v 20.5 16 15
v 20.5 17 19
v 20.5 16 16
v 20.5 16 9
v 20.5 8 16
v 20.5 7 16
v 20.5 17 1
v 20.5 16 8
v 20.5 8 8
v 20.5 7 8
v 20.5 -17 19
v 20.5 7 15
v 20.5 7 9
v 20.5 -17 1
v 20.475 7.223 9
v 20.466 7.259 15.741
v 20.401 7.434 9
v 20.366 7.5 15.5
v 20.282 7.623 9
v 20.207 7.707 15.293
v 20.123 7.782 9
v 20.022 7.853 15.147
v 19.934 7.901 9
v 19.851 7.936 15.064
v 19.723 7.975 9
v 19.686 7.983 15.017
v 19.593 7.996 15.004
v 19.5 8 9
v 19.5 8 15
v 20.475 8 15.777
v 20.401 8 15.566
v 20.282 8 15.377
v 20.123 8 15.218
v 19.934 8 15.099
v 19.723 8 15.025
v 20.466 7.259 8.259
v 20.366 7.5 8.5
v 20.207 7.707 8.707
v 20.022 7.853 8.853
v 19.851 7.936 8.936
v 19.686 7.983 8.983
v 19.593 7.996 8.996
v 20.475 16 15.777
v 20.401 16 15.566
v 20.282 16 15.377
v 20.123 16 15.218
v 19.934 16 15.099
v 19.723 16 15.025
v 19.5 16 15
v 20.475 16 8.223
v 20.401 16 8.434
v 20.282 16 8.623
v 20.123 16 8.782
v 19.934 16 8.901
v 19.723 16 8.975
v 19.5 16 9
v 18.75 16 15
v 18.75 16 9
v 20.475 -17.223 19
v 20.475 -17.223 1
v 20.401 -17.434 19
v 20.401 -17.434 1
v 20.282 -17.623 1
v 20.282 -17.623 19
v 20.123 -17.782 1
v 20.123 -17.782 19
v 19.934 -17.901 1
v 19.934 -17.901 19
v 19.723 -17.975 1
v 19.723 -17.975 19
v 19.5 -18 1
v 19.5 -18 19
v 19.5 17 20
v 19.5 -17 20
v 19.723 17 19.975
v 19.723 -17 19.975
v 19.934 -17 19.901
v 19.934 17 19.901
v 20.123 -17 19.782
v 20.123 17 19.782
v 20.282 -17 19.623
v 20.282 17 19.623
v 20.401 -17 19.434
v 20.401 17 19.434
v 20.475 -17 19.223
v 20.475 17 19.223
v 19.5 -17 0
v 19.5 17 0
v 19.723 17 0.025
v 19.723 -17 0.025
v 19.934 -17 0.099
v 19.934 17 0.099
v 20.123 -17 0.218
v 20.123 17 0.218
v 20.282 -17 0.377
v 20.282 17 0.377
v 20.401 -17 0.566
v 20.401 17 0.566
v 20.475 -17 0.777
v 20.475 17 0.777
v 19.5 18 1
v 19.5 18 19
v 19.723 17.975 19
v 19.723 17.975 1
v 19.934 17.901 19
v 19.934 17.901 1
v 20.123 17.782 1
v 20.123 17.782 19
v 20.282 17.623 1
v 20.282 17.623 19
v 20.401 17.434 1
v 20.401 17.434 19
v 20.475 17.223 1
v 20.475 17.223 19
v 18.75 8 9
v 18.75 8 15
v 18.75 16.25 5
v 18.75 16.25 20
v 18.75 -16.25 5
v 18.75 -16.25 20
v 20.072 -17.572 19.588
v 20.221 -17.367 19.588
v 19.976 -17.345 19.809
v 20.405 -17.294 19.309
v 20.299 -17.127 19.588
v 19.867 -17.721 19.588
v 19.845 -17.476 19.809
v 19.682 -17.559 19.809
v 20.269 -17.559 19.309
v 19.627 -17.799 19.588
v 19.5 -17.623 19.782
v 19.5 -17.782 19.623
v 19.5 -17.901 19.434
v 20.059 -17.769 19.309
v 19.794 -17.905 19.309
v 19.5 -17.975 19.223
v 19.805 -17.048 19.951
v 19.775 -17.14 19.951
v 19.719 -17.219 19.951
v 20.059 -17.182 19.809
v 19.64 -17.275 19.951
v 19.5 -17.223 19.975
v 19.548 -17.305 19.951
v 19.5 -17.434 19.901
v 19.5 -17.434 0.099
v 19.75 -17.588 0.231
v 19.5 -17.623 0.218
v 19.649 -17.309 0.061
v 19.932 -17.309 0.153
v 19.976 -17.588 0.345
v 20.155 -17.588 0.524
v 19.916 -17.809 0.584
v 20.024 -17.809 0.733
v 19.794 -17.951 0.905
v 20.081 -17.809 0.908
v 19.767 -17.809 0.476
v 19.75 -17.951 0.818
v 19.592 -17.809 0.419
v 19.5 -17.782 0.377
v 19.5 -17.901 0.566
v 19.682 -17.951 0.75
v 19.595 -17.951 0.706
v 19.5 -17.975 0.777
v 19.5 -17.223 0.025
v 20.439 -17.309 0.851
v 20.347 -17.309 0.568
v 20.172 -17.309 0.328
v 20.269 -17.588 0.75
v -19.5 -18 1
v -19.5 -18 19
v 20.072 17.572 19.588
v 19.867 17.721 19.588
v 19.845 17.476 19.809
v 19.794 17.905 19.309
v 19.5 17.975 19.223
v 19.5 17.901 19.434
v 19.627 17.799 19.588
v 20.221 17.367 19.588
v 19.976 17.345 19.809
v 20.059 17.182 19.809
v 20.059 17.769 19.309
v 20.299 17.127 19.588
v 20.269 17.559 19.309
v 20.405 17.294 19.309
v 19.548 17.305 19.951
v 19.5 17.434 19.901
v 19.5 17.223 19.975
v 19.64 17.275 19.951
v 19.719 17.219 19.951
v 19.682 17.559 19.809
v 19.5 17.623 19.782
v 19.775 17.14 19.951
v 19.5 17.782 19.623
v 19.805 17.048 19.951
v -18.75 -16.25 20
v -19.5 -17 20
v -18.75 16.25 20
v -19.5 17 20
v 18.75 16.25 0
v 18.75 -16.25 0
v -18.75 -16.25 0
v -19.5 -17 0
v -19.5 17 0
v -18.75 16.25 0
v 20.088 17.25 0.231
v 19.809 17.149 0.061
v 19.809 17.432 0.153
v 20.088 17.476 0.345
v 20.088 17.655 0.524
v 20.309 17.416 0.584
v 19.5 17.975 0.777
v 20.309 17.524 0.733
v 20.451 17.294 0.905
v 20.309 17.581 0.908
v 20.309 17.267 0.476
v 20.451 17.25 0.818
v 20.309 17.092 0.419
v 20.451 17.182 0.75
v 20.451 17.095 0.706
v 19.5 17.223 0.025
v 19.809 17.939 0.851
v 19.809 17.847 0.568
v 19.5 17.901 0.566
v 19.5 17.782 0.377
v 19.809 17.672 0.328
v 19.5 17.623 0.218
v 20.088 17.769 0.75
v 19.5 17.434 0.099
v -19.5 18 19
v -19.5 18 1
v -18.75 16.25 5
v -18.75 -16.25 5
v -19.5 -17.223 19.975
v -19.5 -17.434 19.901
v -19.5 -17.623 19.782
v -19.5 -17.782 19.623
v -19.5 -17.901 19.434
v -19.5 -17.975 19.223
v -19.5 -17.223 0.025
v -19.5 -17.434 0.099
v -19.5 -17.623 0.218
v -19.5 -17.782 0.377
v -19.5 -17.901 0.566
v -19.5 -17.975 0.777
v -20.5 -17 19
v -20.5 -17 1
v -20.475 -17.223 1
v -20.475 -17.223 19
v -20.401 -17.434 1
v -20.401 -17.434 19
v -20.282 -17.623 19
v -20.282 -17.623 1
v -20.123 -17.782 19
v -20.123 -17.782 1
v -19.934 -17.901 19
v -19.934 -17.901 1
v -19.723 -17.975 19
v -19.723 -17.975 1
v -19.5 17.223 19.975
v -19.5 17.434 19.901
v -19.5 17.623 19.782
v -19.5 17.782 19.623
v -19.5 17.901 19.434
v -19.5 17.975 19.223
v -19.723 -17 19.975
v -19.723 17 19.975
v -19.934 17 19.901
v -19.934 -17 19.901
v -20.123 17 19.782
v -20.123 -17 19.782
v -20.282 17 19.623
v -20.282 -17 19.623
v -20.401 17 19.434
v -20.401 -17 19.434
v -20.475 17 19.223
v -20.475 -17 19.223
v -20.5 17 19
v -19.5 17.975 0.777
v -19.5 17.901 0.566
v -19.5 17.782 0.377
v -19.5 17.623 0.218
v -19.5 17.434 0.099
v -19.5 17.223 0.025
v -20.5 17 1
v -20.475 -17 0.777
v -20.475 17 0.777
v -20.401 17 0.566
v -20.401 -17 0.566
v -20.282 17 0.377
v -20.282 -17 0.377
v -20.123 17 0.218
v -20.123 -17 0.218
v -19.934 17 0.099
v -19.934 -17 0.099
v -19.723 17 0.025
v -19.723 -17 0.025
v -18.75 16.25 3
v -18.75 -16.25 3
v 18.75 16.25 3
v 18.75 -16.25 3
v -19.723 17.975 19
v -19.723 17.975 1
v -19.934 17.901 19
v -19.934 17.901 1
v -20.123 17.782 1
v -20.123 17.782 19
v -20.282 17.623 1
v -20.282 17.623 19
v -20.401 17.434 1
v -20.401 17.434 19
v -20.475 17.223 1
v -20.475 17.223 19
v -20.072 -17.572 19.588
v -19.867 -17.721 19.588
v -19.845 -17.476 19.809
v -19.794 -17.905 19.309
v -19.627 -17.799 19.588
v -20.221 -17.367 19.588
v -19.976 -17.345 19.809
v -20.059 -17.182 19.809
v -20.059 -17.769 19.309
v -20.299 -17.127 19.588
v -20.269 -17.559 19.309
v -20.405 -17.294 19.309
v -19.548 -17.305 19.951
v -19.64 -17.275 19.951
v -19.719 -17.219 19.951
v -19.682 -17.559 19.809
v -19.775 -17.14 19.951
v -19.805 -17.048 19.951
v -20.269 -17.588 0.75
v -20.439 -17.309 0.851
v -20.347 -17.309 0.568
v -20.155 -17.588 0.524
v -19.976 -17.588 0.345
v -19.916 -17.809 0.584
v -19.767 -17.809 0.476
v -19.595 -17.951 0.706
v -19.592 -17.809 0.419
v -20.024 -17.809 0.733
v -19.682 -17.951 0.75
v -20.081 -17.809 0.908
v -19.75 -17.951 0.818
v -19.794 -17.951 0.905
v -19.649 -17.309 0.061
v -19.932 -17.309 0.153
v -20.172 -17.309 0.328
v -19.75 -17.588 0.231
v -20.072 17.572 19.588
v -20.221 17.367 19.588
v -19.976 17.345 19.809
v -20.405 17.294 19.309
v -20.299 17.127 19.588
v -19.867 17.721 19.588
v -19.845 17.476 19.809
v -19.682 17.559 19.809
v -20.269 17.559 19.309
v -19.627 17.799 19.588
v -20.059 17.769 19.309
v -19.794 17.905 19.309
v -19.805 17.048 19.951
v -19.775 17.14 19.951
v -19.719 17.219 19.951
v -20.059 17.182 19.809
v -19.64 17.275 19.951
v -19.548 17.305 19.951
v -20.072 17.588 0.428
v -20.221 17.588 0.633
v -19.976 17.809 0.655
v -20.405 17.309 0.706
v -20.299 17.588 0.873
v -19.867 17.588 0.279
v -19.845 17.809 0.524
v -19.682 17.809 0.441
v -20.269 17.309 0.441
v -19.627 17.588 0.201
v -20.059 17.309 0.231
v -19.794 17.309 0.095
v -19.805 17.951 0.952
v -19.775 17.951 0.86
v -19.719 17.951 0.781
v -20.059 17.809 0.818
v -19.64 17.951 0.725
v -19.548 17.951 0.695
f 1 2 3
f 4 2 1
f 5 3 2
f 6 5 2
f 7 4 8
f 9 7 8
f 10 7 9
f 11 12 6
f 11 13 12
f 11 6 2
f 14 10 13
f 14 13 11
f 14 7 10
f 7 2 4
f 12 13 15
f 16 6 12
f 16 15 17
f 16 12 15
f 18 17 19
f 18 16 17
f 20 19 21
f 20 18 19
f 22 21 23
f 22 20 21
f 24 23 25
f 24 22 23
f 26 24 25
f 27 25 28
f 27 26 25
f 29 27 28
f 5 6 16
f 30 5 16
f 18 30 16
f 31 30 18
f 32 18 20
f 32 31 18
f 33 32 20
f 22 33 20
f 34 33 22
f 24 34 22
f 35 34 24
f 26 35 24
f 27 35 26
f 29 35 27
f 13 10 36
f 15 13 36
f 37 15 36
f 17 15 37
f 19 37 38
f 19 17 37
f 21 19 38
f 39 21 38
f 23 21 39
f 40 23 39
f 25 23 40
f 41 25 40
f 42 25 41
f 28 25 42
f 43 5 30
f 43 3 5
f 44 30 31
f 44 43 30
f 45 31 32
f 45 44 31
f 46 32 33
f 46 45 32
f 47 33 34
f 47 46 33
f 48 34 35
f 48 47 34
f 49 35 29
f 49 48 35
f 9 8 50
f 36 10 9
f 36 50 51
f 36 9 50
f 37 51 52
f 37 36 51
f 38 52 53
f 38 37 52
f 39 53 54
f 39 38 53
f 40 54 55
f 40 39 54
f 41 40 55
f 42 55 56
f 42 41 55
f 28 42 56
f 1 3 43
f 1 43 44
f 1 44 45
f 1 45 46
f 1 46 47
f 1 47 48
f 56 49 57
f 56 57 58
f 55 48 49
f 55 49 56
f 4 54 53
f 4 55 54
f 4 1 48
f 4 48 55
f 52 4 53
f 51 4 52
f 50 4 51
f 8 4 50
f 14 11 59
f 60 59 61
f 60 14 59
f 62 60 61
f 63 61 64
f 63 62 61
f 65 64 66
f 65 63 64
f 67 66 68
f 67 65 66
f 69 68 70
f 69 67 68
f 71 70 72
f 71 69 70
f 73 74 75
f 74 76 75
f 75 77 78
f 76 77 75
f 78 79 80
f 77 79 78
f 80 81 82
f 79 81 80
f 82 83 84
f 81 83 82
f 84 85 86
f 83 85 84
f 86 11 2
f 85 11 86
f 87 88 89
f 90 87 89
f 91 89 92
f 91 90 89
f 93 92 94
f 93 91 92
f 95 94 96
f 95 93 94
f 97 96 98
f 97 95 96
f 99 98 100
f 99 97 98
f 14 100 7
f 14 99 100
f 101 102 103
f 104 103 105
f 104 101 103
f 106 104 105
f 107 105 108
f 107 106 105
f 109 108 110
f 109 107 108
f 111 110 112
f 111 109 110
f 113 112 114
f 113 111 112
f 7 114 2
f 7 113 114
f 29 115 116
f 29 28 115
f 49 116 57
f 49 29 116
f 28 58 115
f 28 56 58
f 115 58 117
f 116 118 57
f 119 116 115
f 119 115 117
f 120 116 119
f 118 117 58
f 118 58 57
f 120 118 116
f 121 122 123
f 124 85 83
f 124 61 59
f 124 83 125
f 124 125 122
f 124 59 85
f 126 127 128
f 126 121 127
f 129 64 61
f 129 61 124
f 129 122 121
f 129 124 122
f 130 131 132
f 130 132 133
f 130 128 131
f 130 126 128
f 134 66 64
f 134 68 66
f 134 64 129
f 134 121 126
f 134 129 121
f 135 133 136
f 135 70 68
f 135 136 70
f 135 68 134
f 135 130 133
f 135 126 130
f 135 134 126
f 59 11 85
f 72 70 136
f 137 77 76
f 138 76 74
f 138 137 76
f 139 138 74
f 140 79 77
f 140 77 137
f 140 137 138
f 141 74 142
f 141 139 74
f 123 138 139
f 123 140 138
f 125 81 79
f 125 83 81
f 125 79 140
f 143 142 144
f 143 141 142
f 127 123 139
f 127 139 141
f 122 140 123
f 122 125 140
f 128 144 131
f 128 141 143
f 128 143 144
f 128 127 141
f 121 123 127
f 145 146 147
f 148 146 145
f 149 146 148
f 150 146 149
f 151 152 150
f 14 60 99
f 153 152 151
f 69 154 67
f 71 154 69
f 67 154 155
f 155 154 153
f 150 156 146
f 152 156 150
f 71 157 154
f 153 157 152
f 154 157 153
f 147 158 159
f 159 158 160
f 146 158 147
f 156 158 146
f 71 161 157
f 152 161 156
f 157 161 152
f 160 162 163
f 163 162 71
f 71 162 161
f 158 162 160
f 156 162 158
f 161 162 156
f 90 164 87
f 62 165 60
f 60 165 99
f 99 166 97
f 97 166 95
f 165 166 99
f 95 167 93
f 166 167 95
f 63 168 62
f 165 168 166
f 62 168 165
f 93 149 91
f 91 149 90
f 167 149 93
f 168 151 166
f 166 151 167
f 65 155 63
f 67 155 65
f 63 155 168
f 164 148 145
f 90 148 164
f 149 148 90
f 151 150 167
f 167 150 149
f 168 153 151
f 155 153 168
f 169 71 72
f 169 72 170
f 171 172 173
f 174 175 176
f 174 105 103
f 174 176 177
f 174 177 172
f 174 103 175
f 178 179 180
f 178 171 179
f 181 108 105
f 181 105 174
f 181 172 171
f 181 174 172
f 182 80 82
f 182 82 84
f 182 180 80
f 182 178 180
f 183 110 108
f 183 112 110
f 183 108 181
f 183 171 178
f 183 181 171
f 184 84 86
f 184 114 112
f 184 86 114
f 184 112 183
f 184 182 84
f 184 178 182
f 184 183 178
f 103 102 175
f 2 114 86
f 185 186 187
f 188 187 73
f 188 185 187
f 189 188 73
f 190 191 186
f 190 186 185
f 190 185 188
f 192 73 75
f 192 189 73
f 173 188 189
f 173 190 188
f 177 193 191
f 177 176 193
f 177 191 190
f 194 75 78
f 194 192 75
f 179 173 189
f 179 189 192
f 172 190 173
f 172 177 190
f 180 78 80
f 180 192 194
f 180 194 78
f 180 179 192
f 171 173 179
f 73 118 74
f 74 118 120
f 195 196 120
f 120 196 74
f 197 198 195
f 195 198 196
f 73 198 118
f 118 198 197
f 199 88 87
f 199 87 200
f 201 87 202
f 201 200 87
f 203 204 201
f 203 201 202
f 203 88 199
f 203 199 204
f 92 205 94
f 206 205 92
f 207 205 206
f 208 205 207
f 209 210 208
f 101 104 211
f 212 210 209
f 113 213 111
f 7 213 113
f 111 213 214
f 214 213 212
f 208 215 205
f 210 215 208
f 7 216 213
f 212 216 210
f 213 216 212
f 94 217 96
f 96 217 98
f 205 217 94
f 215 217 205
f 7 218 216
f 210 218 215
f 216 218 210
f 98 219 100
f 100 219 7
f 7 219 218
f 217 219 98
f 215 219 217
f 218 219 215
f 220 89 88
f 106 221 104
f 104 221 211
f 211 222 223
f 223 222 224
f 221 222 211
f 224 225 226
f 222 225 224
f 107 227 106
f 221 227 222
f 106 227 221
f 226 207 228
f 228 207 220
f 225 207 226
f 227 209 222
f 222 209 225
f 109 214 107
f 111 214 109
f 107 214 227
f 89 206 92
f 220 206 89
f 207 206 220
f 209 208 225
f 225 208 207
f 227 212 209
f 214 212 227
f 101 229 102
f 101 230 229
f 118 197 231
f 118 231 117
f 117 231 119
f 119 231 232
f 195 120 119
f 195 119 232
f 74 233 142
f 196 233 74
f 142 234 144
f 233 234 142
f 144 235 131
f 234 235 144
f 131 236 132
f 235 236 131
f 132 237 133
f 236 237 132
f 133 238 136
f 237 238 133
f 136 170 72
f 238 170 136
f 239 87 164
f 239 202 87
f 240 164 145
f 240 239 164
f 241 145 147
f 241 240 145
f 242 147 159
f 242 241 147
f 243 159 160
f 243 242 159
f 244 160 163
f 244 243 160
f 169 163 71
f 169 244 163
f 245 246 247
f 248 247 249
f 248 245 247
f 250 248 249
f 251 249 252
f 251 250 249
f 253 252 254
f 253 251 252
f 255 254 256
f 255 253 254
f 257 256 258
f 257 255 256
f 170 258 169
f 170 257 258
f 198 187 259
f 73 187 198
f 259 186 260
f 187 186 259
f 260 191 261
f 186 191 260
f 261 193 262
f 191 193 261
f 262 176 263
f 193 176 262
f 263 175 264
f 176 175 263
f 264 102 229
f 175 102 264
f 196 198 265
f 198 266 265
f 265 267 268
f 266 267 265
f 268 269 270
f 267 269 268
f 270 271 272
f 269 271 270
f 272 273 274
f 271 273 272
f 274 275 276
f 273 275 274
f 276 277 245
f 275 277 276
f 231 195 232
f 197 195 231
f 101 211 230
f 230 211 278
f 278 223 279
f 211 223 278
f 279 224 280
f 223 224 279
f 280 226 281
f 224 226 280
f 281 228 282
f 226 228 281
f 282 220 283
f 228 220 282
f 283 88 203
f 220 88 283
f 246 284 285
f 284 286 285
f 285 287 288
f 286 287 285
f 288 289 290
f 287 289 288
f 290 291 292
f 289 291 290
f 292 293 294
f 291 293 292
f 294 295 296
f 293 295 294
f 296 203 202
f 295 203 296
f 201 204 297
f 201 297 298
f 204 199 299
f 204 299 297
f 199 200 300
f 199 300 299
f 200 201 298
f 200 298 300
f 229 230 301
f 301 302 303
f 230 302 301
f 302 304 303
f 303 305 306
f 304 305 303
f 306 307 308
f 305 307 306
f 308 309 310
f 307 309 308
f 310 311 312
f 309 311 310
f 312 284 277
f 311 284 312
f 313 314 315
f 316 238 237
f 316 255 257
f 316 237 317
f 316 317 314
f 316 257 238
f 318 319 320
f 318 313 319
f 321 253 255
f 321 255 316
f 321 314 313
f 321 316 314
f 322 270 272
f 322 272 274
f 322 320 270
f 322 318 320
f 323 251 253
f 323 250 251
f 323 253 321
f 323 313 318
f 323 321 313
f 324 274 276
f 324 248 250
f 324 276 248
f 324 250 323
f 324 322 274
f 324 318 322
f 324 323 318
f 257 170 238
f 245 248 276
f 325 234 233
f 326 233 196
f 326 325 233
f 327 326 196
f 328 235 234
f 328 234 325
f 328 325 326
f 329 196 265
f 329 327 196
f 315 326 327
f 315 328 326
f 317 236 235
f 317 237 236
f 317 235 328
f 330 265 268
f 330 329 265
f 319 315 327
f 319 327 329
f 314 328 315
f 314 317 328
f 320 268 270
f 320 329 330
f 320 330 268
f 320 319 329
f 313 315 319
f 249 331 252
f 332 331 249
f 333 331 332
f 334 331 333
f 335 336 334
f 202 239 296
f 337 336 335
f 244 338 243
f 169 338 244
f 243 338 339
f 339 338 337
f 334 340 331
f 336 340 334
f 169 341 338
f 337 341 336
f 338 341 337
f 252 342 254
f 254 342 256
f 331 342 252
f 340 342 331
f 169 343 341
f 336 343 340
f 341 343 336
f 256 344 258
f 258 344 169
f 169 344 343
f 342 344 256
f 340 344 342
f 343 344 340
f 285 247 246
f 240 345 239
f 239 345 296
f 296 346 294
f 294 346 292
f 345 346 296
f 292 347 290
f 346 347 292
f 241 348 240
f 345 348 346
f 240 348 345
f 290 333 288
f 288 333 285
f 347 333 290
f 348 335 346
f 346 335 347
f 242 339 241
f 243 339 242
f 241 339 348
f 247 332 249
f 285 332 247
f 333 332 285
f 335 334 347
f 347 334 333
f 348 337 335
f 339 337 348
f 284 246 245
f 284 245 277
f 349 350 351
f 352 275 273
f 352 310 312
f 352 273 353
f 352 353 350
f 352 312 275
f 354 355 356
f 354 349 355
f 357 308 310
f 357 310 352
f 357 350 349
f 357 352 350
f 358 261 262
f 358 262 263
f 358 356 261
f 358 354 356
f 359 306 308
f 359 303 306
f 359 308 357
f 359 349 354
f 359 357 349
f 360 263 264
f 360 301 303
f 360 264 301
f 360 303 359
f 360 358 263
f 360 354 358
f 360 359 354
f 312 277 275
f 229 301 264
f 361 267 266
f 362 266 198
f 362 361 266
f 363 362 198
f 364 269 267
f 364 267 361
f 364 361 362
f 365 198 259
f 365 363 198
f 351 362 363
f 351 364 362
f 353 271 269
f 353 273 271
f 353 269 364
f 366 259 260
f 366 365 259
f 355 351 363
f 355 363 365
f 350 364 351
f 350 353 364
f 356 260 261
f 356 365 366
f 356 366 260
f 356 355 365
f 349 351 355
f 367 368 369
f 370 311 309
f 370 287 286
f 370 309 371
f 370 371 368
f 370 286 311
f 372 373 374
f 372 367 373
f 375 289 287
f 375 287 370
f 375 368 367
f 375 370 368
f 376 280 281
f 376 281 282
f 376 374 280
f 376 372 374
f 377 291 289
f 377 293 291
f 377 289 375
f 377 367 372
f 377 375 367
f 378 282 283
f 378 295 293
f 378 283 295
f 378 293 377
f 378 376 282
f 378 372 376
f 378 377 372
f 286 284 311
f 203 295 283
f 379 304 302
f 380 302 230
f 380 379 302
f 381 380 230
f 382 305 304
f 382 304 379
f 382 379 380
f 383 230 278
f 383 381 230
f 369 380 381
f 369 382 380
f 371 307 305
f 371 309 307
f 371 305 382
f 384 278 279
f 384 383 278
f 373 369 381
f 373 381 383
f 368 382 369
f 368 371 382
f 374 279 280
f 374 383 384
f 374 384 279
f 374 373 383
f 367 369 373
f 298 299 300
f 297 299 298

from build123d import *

# Parameters (mm, degrees)
SKETCH_W        = 41
SKETCH_H        = 36
PAD_DEPTH       = 20
SKETCH001_W     = 37.5
SKETCH001_H     = 32.5
POCKET_DEPTH    = 15
SKETCH002_W     = 37.5
SKETCH002_H     = 32.5
POCKET001_DEPTH = 3
SKETCH003_W     = 8
SKETCH003_H     = 6
POCKET002_DEPTH = 5
FILLET_R        = 1
FILLET001_R     = 1
FILLET002_R     = 1
FILLET003_R     = 1
FILLET004_R     = 1
FILLET005_R     = 1
FILLET006_R     = 1
FILLET007_R     = 1


with BuildPart() as part:
    # Sketch → Pad (new body)
    with BuildSketch(Plane.XY):
        Rectangle(SKETCH_W, SKETCH_H)
    extrude(amount=PAD_DEPTH)

    # Sketch001 (on Face6 of Pad) → Pocket (cut)
    with BuildSketch(Plane.XY.offset(20)):
        Rectangle(SKETCH001_W, SKETCH001_H)
    extrude(amount=-POCKET_DEPTH, mode=Mode.SUBTRACT)

    # Sketch002 (on Face4 of Pocket) → Pocket001 (cut)
    with BuildSketch(Plane(origin=(0, 0, 0), x_dir=(1, 0, 0), z_dir=(0, 0, -1))):
        Rectangle(SKETCH002_W, SKETCH002_H)
    extrude(amount=-POCKET001_DEPTH, mode=Mode.SUBTRACT)

    # Sketch003 (on Face3 of Pocket001) → Pocket002 (cut)
    with BuildSketch(Plane.YZ.offset(20.5)):
        with Locations((12, 12)):
            Rectangle(SKETCH003_W, SKETCH003_H)
    extrude(amount=-POCKET002_DEPTH, mode=Mode.SUBTRACT)

    # Fillet
    fillet_edges = [part.edges().sort_by_distance(p)[0] for p in [
        (-20.5, 0, 0),
    ]]
    fillet(fillet_edges, radius=FILLET_R)

    # Fillet001
    fillet001_edges = [part.edges().sort_by_distance(p)[0] for p in [
        (0.5, 18, 0),
    ]]
    fillet(fillet001_edges, radius=FILLET001_R)

    # Fillet002
    fillet002_edges = [part.edges().sort_by_distance(p)[0] for p in [
        (20.5, -0.5, 0),
    ]]
    fillet(fillet002_edges, radius=FILLET002_R)

    # Fillet003
    fillet003_edges = [part.edges().sort_by_distance(p)[0] for p in [
        (0, -18, 0),
    ]]
    fillet(fillet003_edges, radius=FILLET003_R)

    # Fillet004
    fillet004_edges = [part.edges().sort_by_distance(p)[0] for p in [
        (-20.5, 0, 20),
    ]]
    fillet(fillet004_edges, radius=FILLET004_R)

    # Fillet005
    fillet005_edges = [part.edges().sort_by_distance(p)[0] for p in [
        (20.5, 12, 9),
    ]]
    fillet(fillet005_edges, radius=FILLET005_R)

    # Fillet006
    fillet006_edges = [part.edges().sort_by_distance(p)[0] for p in [
        (20.5, 8, 12),
    ]]
    fillet(fillet006_edges, radius=FILLET006_R)

    # Fillet007
    fillet007_edges = [part.edges().sort_by_distance(p)[0] for p in [
        (20.5, 12, 15),
    ]]
    fillet(fillet007_edges, radius=FILLET007_R)


solid = part.part
